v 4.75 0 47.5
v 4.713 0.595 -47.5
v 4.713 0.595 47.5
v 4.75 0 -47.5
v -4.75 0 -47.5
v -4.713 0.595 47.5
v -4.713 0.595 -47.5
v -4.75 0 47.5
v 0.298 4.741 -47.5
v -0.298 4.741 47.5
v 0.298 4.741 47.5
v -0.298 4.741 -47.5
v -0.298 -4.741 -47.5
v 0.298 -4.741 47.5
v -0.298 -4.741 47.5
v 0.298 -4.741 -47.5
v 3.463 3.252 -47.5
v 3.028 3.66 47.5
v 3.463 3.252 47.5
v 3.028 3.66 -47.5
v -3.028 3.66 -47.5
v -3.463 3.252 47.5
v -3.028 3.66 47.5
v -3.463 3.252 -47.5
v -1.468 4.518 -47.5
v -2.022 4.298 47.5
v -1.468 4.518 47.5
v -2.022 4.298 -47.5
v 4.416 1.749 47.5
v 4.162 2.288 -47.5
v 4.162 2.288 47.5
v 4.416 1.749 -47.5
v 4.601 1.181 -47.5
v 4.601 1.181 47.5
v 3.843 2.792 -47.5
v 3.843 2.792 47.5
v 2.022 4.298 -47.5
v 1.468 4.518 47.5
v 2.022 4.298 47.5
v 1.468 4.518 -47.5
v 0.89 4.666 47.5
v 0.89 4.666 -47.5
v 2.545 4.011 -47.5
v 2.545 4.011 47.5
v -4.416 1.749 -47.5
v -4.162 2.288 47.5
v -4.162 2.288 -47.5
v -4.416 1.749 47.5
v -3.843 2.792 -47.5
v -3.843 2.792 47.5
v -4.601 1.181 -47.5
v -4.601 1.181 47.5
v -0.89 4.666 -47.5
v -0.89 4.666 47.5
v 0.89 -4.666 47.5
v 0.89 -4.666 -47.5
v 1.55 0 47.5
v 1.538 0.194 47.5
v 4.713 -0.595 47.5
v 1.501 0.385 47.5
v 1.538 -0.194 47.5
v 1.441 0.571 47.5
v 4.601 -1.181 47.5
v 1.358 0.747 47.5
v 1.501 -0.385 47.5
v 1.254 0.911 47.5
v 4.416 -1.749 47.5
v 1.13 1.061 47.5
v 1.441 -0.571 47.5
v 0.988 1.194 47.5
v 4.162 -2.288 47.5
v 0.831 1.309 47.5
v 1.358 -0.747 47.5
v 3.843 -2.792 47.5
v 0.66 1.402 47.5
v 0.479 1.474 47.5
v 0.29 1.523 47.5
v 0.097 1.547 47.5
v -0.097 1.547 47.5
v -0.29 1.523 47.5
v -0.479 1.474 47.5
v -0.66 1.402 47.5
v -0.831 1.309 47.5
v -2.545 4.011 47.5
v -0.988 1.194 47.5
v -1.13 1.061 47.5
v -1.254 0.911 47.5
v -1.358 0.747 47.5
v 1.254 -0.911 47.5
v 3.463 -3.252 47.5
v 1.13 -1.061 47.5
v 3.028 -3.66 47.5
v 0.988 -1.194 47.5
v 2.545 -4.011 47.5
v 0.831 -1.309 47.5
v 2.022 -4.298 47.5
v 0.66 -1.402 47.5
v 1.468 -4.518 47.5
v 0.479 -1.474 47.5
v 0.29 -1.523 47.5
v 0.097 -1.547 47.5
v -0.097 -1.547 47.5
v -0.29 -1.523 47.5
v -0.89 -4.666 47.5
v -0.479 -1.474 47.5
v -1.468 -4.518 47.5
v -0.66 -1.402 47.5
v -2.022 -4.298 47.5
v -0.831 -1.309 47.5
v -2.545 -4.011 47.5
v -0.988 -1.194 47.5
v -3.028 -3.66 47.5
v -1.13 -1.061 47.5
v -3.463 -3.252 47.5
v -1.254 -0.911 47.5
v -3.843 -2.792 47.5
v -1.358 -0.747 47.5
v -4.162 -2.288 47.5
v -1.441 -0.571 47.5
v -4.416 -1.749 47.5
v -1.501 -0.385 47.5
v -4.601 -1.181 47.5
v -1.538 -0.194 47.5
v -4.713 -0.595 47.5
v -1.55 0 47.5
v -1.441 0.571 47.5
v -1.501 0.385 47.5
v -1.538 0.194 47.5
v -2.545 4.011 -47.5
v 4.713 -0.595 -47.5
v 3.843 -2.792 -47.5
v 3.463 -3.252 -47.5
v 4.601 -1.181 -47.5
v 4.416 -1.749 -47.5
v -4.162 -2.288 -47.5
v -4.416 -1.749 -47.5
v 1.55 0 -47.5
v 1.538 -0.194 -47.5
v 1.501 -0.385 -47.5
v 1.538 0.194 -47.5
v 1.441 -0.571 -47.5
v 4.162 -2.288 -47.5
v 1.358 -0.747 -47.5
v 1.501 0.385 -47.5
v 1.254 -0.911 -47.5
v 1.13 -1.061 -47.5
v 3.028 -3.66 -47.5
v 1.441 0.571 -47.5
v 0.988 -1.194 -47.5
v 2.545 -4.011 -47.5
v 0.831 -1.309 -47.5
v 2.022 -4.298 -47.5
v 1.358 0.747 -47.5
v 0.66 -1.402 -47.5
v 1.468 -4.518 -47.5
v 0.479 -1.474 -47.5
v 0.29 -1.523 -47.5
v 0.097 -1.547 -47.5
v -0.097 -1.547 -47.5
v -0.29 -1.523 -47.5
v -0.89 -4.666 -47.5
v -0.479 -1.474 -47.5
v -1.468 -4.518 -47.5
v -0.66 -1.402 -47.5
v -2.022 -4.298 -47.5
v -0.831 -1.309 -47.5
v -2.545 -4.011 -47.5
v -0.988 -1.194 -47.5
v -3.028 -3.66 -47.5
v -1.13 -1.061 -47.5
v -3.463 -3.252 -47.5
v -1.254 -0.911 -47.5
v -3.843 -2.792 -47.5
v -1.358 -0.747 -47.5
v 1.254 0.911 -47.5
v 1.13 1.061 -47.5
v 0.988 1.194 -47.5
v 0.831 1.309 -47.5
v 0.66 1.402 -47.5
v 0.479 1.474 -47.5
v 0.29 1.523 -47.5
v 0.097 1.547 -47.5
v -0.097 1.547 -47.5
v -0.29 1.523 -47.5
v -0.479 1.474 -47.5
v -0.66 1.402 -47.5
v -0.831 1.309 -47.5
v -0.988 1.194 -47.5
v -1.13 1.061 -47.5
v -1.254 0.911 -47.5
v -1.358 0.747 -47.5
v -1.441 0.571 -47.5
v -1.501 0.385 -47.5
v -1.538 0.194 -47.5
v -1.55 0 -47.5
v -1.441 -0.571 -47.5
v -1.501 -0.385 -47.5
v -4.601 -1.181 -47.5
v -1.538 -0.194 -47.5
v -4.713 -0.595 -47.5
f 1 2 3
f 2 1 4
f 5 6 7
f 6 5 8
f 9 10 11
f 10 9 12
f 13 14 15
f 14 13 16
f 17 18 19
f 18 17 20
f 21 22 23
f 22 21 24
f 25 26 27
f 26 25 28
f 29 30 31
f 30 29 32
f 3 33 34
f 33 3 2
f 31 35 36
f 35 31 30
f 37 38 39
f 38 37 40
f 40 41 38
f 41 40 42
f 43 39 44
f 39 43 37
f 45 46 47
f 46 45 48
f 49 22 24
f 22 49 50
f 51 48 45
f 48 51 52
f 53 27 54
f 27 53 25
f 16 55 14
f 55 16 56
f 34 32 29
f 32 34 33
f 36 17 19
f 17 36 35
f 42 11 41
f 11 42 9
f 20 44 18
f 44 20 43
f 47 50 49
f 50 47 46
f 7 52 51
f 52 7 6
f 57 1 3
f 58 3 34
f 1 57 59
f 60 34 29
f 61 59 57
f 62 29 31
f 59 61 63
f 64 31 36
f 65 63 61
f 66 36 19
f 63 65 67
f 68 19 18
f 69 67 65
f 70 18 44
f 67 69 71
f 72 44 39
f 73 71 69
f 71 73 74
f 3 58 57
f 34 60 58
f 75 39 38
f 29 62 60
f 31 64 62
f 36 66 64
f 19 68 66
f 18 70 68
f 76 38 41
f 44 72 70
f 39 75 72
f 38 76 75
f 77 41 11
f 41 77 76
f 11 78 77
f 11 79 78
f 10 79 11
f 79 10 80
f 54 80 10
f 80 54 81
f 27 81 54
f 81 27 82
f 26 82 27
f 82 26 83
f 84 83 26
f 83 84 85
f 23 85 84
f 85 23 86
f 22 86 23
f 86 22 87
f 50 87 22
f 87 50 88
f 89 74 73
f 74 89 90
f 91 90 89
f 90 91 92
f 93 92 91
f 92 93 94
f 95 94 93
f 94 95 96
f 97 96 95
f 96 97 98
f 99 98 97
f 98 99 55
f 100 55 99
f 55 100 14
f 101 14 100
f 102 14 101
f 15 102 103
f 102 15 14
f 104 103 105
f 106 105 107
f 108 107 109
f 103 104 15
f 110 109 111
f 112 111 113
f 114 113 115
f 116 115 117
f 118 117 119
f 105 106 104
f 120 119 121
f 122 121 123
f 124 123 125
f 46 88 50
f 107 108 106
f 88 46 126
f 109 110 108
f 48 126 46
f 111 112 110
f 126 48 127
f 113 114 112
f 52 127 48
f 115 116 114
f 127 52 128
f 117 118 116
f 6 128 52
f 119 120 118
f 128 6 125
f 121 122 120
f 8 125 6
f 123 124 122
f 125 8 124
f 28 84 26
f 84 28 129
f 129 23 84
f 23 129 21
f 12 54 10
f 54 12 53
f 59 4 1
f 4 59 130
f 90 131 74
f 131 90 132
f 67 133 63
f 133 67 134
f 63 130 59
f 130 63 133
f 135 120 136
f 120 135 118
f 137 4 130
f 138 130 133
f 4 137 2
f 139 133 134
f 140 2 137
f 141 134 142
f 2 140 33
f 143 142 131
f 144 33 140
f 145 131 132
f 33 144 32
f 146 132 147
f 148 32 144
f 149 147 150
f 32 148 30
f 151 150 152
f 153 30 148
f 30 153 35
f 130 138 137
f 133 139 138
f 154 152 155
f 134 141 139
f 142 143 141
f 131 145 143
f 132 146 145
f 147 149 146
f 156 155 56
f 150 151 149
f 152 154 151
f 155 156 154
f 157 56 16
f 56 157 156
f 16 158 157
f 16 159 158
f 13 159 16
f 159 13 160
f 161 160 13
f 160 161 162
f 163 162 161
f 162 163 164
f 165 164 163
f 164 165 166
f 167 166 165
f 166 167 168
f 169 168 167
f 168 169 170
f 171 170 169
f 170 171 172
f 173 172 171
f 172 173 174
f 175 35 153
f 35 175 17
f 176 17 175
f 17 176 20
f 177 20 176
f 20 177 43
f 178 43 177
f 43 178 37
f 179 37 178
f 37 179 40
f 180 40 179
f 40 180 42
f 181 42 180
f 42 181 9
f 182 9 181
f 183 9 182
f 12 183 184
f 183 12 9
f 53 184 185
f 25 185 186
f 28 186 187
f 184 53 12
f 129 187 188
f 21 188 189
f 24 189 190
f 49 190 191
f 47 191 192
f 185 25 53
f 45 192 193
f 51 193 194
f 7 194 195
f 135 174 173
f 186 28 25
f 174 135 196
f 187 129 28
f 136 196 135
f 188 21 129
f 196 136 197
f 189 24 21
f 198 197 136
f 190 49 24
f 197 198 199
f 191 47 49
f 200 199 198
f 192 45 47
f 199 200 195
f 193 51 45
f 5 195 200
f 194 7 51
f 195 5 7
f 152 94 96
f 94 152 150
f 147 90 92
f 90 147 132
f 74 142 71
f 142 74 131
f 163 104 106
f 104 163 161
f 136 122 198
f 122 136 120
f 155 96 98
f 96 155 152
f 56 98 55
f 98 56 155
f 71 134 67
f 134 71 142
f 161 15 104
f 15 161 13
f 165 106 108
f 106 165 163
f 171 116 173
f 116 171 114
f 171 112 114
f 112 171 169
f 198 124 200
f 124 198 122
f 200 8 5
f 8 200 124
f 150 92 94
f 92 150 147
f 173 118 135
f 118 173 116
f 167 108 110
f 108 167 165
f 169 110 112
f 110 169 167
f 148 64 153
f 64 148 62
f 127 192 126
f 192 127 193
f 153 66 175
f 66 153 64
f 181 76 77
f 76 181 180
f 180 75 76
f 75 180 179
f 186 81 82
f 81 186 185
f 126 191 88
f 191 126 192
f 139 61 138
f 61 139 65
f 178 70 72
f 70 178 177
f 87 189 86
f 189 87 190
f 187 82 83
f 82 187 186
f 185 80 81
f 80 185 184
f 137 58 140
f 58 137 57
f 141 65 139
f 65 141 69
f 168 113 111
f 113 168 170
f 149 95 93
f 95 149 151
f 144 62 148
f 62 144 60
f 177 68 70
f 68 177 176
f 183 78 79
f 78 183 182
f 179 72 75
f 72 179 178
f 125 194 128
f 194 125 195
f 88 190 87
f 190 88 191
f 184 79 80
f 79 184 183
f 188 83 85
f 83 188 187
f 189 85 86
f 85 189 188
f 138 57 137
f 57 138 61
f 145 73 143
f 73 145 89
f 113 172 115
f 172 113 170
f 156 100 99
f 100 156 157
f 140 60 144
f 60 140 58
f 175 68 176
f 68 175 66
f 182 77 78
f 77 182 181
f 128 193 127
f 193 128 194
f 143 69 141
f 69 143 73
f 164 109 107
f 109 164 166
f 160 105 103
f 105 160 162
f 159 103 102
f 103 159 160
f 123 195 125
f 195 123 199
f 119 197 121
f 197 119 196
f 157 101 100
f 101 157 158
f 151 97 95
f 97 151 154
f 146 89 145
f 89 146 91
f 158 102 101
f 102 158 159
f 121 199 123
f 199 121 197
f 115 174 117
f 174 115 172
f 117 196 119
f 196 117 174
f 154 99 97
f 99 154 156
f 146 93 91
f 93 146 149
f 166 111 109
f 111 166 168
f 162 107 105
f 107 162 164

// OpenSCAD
$fn = 50;


difference() {
	union() {
		translate(v = [0, 0, -47.5000000000]) {
			cylinder(h = 95, r = 4.7500000000);
		}
	}
	union() {
		translate(v = [0, 0, -100.0000000000]) {
			cylinder(h = 200, r = 1.5500000000);
		}
	}
}
